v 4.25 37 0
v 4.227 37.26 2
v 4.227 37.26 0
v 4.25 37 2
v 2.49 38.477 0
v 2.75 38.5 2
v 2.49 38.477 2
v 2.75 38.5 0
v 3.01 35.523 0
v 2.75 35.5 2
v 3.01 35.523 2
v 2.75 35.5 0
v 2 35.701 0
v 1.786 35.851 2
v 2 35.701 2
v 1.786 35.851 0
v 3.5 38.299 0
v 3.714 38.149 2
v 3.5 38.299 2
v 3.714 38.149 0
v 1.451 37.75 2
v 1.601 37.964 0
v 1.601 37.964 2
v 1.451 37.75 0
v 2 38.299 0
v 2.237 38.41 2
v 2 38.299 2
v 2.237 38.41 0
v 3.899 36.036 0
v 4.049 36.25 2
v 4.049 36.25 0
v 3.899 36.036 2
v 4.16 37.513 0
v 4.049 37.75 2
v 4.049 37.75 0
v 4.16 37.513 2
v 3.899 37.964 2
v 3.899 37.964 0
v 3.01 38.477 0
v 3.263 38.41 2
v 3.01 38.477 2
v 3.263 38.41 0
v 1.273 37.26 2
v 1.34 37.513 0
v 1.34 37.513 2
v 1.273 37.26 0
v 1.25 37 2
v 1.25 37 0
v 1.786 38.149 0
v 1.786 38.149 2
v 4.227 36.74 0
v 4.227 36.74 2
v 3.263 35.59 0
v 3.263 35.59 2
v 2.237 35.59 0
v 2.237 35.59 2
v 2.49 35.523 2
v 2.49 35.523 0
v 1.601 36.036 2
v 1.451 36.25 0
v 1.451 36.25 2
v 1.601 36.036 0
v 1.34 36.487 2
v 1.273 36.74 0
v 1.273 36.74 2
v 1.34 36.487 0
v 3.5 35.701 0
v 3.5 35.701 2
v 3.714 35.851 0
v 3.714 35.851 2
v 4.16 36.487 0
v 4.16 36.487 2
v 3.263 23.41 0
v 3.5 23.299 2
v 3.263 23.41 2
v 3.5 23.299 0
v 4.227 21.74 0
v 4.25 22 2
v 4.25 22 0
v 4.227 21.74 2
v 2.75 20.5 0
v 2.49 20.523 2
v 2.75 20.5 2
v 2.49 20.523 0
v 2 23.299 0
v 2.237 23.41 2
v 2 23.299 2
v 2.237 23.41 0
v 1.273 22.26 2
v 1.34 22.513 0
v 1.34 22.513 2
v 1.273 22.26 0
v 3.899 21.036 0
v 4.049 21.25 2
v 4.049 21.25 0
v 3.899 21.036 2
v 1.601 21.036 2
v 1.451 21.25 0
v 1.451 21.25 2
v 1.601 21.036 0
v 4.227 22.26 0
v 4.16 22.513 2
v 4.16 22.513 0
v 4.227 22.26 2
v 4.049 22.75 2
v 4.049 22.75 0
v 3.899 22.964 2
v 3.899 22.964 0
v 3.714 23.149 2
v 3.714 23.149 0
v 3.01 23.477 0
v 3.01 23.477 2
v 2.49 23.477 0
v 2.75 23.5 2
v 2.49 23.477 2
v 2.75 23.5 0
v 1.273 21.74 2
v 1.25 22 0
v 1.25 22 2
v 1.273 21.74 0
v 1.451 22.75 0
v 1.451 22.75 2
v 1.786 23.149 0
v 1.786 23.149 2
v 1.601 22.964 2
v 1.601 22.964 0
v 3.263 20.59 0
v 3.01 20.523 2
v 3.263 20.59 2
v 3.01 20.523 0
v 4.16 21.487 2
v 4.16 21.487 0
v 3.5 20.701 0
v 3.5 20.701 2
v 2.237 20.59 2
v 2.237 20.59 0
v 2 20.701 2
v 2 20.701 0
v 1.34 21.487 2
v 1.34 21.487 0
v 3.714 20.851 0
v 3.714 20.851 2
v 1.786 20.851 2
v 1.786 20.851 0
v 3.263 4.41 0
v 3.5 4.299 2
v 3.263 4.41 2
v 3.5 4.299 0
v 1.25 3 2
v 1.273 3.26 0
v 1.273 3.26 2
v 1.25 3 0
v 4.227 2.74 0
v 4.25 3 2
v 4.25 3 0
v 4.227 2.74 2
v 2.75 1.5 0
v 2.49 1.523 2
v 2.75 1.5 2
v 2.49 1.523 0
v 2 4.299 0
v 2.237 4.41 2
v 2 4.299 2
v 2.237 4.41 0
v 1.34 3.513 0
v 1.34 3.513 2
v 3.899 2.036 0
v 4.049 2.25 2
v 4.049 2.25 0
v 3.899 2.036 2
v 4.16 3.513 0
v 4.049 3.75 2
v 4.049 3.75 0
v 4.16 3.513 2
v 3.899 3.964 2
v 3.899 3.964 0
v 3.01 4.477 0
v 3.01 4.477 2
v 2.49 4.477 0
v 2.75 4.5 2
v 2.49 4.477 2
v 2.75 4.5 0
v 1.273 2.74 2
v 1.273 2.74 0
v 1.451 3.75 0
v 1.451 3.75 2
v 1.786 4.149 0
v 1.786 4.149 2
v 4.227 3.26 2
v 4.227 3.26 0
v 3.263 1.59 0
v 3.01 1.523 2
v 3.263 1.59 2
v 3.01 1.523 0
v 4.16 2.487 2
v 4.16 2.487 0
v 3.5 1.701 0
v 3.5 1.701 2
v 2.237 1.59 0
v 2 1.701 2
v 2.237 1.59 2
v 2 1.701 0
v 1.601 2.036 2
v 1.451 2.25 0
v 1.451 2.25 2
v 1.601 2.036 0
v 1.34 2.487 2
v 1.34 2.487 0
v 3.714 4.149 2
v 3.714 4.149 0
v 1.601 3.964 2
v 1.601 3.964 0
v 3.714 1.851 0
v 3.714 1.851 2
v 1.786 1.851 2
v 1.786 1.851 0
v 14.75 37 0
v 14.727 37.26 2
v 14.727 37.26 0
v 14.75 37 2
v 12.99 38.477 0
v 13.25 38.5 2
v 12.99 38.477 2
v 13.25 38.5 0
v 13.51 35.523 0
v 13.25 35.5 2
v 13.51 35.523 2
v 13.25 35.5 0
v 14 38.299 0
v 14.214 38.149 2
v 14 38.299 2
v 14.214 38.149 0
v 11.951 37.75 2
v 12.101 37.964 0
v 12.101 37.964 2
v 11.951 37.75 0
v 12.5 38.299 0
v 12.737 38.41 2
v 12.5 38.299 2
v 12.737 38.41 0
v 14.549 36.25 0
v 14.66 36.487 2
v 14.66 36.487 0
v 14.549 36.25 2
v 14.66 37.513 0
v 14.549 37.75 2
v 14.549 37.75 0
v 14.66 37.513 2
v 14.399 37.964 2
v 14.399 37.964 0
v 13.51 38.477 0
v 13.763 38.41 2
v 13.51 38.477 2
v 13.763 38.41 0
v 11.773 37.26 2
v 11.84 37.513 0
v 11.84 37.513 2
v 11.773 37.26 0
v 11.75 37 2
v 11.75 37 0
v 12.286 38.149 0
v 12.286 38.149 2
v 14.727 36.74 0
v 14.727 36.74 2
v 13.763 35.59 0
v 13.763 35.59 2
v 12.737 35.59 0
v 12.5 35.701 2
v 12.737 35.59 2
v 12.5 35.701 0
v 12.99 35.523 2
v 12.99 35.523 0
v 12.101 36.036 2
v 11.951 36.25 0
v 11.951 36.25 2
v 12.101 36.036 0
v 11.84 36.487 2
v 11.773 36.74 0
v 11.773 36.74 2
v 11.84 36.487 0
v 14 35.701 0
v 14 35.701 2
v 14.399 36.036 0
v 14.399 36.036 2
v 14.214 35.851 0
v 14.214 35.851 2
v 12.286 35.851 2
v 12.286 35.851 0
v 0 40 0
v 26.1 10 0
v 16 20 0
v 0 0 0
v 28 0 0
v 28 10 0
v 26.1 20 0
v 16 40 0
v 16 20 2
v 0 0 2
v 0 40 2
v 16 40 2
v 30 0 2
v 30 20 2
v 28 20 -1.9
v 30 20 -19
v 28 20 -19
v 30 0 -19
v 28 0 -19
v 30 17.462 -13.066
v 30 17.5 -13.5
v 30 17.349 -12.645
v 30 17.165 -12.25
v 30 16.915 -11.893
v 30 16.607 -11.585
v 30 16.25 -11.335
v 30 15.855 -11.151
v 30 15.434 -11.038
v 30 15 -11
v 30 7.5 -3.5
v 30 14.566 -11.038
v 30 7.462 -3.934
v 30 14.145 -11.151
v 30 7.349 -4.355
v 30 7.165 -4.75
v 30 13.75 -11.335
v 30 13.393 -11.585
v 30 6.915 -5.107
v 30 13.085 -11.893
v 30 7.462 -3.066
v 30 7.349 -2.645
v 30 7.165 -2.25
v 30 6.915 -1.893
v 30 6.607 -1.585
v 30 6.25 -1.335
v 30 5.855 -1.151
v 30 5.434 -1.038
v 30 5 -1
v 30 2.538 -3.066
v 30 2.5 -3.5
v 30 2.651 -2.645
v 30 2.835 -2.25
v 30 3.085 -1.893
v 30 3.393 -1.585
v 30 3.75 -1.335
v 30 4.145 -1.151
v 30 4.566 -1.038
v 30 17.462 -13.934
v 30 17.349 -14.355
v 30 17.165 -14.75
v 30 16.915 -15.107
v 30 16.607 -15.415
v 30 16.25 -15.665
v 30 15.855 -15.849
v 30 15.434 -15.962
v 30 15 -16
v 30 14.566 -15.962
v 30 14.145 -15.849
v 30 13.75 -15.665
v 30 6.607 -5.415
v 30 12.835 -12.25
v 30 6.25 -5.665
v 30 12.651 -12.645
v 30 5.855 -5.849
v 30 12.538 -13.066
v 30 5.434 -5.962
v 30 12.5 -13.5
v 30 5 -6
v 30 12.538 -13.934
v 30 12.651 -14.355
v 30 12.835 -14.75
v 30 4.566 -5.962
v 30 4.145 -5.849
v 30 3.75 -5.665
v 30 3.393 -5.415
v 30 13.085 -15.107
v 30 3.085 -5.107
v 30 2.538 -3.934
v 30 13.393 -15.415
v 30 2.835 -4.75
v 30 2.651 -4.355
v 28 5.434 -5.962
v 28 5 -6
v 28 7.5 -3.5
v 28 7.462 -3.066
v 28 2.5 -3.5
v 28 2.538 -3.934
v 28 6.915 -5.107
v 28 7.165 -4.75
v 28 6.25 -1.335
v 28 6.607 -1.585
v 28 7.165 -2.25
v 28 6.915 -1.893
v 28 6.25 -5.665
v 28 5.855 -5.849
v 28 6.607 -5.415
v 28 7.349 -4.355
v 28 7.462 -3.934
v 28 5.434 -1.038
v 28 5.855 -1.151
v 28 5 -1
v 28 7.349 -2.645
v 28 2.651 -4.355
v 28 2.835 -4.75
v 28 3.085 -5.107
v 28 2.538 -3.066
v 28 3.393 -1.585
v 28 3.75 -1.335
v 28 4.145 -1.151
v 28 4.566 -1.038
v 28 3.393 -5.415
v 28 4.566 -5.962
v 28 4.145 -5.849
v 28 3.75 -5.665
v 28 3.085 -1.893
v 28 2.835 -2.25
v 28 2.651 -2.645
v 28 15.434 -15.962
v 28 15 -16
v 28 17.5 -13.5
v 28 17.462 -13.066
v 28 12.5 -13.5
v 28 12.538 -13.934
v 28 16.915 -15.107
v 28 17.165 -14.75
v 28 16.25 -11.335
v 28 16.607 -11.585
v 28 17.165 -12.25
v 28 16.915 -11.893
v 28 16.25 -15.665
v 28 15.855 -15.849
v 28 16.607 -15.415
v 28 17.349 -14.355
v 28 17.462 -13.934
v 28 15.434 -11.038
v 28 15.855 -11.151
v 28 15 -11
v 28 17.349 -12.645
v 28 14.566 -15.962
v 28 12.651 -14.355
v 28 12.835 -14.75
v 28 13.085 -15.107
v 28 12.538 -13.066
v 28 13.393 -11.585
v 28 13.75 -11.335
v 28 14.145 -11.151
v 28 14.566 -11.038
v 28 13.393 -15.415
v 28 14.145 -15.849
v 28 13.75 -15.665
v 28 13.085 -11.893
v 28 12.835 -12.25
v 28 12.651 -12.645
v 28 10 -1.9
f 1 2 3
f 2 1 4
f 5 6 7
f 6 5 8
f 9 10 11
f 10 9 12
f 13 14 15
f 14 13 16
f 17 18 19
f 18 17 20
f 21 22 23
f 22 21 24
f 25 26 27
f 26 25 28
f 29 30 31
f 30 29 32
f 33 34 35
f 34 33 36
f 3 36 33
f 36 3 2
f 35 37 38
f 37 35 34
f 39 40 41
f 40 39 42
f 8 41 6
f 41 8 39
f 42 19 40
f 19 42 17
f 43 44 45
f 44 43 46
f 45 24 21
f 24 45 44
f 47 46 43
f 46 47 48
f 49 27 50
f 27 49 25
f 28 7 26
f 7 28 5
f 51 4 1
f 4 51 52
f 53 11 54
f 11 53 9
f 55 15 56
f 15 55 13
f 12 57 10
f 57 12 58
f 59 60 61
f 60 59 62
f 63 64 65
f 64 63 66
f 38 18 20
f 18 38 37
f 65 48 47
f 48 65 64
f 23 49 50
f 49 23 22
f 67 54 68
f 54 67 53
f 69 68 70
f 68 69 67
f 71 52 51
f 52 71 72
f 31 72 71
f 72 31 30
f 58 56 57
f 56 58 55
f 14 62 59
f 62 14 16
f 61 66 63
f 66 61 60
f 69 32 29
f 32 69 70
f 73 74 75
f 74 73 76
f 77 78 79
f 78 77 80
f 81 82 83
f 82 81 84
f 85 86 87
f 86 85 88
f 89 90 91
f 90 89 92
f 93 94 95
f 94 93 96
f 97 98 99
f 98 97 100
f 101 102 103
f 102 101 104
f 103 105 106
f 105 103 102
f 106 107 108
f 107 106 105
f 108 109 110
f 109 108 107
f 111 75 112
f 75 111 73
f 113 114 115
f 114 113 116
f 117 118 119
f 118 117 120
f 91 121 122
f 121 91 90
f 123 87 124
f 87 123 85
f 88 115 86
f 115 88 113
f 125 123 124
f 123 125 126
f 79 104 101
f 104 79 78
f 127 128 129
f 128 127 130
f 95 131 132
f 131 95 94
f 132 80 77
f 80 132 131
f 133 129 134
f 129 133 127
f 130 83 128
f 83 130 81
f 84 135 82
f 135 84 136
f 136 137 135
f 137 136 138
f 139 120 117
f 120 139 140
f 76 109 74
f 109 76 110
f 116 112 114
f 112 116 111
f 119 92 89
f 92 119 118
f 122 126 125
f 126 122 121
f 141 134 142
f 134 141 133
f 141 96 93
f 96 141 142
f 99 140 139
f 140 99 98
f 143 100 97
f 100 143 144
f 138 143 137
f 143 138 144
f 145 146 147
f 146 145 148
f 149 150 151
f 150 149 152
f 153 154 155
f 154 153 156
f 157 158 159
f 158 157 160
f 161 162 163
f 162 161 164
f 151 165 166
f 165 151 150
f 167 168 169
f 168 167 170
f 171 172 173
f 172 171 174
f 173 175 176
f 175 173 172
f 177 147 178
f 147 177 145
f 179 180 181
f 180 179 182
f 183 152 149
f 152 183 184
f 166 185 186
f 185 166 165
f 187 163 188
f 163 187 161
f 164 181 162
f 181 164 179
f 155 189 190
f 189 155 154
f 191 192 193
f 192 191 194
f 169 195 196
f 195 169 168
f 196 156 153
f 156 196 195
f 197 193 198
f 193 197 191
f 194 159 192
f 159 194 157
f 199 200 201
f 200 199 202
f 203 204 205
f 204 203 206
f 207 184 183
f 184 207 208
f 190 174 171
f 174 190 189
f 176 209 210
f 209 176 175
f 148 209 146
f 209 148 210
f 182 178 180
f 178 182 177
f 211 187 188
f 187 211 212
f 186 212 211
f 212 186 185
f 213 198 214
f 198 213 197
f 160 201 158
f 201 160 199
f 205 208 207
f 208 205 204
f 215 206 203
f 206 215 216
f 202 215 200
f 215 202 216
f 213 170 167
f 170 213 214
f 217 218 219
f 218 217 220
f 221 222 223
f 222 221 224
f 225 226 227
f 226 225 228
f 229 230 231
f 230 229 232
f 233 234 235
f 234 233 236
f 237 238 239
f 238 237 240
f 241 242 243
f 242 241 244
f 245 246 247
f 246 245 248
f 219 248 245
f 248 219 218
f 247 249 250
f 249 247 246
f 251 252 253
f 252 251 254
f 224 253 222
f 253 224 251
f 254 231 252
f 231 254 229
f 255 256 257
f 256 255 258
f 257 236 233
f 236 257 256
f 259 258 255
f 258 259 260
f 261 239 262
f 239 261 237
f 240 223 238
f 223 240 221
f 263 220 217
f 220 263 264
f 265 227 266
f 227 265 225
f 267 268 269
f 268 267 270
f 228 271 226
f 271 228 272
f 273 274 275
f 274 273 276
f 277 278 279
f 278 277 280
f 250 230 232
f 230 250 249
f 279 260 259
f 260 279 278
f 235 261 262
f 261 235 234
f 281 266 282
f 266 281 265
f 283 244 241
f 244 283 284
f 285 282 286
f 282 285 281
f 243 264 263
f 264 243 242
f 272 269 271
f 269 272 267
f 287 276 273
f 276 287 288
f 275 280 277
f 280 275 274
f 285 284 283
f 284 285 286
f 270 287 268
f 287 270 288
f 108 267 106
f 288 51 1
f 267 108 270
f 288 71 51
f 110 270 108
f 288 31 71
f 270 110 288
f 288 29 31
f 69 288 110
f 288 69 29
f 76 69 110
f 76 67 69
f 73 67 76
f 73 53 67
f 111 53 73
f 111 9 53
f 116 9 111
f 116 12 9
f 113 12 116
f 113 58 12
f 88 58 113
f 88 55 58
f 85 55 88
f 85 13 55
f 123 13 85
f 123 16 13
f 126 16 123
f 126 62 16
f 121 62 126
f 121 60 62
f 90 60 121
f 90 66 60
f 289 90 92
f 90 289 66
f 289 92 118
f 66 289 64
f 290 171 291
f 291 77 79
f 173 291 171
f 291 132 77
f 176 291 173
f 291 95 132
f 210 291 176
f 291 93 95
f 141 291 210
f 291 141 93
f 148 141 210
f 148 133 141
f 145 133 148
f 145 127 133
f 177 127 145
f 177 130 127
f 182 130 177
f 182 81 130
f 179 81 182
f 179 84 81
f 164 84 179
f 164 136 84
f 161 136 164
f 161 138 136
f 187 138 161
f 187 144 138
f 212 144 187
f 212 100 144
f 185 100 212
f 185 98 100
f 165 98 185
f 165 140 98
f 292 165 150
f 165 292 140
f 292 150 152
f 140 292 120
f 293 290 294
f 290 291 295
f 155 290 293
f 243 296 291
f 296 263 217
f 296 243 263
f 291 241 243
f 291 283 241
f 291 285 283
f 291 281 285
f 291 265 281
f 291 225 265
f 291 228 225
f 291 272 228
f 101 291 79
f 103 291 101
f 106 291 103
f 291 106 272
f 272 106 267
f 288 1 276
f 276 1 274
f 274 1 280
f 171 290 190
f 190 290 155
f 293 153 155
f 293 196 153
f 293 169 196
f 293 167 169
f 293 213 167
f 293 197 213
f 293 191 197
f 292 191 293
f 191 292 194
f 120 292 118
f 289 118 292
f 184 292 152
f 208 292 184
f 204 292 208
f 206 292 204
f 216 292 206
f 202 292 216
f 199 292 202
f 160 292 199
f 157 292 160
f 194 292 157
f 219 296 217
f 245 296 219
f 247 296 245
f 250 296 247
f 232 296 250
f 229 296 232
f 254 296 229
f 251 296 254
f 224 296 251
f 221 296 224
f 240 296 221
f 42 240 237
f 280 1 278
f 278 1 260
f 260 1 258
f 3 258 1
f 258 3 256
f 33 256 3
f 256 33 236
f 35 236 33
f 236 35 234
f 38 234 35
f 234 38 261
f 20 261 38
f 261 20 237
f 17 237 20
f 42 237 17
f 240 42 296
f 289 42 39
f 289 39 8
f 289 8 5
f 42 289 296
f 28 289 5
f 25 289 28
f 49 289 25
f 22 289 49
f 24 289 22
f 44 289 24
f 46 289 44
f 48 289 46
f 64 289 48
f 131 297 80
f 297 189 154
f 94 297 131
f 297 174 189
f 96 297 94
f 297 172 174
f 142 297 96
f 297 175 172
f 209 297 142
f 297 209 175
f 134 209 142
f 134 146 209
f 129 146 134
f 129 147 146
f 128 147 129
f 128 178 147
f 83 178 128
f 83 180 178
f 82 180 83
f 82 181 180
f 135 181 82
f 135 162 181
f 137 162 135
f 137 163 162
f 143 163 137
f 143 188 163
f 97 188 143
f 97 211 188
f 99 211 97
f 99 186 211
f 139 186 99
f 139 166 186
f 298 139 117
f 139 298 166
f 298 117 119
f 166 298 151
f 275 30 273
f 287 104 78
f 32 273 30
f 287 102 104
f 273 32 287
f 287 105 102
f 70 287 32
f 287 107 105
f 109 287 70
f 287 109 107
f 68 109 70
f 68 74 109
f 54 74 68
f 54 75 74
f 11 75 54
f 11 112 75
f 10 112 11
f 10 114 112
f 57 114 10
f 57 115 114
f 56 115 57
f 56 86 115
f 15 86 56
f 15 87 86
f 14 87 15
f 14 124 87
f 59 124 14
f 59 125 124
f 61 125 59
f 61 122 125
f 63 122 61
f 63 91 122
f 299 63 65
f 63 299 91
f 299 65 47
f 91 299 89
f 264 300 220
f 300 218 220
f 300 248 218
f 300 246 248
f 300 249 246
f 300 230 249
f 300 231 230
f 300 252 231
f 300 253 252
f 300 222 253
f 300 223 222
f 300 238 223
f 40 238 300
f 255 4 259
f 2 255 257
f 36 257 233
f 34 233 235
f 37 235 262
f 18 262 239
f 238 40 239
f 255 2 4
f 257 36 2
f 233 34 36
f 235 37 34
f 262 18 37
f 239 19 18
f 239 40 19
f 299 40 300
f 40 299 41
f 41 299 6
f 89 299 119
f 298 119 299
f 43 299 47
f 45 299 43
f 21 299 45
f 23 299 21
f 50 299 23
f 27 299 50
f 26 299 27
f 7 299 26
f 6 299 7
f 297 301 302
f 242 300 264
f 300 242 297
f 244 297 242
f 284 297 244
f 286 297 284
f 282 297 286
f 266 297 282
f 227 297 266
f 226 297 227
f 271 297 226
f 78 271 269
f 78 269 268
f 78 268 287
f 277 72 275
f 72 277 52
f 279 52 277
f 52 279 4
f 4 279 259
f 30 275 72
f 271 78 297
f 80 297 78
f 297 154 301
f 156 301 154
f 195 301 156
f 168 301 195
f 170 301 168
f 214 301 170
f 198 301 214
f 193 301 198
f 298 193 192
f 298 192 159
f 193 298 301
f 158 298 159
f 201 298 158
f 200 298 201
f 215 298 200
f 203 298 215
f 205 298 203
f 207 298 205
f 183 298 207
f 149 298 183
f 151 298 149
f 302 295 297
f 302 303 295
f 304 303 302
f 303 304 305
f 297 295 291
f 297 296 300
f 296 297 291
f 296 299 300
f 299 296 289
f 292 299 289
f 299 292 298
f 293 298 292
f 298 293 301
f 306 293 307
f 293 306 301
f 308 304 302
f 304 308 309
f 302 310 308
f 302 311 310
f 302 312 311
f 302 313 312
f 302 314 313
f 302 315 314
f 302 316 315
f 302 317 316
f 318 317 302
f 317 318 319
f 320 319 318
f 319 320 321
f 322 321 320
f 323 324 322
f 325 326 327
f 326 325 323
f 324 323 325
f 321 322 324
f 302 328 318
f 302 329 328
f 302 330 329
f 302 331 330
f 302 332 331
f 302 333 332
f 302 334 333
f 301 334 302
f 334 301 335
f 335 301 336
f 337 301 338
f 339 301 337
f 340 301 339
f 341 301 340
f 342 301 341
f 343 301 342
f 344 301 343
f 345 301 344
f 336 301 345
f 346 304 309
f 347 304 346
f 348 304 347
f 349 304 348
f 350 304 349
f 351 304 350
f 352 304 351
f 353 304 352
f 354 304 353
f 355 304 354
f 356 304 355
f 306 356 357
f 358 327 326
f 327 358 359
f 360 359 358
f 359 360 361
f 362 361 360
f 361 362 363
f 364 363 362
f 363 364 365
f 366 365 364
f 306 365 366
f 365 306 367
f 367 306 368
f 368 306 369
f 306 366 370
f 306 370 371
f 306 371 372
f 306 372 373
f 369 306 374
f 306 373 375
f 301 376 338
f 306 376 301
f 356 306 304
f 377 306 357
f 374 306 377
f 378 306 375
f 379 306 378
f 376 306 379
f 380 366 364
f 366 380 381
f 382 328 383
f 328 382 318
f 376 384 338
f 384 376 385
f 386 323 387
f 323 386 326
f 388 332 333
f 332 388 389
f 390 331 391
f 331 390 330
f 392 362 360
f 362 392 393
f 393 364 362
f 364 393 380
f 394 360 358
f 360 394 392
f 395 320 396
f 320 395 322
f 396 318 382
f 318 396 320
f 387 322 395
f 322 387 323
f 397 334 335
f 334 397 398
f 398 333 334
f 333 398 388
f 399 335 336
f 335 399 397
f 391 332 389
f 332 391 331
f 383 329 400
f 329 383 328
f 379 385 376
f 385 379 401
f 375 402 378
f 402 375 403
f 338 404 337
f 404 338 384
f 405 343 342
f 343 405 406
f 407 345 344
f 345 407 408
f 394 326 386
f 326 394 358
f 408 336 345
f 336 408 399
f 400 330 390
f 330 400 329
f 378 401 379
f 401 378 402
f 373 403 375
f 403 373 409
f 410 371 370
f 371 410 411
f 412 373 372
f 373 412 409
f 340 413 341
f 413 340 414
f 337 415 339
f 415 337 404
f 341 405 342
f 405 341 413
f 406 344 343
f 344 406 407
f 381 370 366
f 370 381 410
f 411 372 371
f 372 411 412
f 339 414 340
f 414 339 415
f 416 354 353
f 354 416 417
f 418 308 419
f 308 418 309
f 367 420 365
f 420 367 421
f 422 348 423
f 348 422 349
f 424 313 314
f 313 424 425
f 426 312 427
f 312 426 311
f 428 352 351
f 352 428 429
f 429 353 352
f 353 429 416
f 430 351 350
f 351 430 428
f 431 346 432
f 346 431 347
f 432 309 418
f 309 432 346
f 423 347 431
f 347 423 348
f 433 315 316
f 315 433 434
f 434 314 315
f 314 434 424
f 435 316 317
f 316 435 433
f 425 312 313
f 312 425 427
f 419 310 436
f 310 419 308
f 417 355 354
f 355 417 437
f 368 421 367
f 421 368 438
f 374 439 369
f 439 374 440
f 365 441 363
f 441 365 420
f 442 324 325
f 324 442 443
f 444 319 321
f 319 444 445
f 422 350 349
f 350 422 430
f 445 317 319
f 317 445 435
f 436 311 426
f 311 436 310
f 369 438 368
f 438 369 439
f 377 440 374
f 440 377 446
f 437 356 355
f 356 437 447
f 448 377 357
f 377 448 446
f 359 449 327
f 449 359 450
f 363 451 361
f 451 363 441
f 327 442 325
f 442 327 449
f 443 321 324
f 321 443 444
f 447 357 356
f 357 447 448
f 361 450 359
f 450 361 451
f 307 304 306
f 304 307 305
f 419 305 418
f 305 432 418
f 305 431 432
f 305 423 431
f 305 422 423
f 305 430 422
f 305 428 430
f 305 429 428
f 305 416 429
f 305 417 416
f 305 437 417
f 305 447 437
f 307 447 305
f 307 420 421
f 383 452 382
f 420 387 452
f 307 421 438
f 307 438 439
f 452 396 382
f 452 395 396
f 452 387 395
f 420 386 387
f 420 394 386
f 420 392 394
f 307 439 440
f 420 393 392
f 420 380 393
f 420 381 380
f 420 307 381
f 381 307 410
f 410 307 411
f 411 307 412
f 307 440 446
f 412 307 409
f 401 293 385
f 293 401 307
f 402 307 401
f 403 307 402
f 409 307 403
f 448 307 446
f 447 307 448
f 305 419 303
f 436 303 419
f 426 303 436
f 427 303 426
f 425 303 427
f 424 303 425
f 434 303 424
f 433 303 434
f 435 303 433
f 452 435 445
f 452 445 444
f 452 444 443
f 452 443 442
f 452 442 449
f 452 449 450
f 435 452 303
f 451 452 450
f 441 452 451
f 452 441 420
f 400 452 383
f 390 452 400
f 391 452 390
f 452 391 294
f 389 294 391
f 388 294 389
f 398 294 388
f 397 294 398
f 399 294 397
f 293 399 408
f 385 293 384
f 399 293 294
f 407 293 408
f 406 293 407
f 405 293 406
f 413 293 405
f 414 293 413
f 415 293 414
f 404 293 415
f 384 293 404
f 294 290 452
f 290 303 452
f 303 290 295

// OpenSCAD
/* Support endstop pour Électrofraise (X : axe horizontal le plus court)
   Quimper, la baleine, 6 mars 2020 / pierre<at>lesporteslogiques.net
   openscad version version 2019.05 @ kirin / debian 9.5 stretch é
*/

// plaque pour fixer le endstop
difference() {
    linear_extrude(height=2) polygon(points = [ [0, 0], [30, 0], [30, 20], [16, 20], [16, 40], [0, 40] ]);
    union() {
        translate([2.75, 37, -0.1]) cylinder( h=3, r=1.5, center=false, $fn=36);
        translate([2.75, 22, -0.1]) cylinder( h=3, r=1.5, center=false, $fn=36);
        translate([2.75, 3, -0.1]) cylinder( h=3, r=1.5, center=false, $fn=36);
        translate([13.25, 37, -0.1]) cylinder( h=3, r=1.5, center=false, $fn=36);
    }
}

// plaque de fixation à la fraiseuse
translate([28, 0, 1.5]) rotate(a=[0, 90, 0]) difference() {
    union() {
        cube(size=[20.5, 20, 2], center=false);
    }
    
    union() {
        translate([5, 5, -0.1]) cylinder( h=2.2, r=2.5, center=false, $fn=36);   
        translate([15, 15, -0.1]) cylinder( h=2.2, r=2.5, center=false, $fn=36);     
    }
}

// Renfort
translate([26.1, 10, 0]) rotate([270, 0, 0]) linear_extrude(height=10) polygon(points = [ [0, 0], [3, 0], [3, 3] ]);
